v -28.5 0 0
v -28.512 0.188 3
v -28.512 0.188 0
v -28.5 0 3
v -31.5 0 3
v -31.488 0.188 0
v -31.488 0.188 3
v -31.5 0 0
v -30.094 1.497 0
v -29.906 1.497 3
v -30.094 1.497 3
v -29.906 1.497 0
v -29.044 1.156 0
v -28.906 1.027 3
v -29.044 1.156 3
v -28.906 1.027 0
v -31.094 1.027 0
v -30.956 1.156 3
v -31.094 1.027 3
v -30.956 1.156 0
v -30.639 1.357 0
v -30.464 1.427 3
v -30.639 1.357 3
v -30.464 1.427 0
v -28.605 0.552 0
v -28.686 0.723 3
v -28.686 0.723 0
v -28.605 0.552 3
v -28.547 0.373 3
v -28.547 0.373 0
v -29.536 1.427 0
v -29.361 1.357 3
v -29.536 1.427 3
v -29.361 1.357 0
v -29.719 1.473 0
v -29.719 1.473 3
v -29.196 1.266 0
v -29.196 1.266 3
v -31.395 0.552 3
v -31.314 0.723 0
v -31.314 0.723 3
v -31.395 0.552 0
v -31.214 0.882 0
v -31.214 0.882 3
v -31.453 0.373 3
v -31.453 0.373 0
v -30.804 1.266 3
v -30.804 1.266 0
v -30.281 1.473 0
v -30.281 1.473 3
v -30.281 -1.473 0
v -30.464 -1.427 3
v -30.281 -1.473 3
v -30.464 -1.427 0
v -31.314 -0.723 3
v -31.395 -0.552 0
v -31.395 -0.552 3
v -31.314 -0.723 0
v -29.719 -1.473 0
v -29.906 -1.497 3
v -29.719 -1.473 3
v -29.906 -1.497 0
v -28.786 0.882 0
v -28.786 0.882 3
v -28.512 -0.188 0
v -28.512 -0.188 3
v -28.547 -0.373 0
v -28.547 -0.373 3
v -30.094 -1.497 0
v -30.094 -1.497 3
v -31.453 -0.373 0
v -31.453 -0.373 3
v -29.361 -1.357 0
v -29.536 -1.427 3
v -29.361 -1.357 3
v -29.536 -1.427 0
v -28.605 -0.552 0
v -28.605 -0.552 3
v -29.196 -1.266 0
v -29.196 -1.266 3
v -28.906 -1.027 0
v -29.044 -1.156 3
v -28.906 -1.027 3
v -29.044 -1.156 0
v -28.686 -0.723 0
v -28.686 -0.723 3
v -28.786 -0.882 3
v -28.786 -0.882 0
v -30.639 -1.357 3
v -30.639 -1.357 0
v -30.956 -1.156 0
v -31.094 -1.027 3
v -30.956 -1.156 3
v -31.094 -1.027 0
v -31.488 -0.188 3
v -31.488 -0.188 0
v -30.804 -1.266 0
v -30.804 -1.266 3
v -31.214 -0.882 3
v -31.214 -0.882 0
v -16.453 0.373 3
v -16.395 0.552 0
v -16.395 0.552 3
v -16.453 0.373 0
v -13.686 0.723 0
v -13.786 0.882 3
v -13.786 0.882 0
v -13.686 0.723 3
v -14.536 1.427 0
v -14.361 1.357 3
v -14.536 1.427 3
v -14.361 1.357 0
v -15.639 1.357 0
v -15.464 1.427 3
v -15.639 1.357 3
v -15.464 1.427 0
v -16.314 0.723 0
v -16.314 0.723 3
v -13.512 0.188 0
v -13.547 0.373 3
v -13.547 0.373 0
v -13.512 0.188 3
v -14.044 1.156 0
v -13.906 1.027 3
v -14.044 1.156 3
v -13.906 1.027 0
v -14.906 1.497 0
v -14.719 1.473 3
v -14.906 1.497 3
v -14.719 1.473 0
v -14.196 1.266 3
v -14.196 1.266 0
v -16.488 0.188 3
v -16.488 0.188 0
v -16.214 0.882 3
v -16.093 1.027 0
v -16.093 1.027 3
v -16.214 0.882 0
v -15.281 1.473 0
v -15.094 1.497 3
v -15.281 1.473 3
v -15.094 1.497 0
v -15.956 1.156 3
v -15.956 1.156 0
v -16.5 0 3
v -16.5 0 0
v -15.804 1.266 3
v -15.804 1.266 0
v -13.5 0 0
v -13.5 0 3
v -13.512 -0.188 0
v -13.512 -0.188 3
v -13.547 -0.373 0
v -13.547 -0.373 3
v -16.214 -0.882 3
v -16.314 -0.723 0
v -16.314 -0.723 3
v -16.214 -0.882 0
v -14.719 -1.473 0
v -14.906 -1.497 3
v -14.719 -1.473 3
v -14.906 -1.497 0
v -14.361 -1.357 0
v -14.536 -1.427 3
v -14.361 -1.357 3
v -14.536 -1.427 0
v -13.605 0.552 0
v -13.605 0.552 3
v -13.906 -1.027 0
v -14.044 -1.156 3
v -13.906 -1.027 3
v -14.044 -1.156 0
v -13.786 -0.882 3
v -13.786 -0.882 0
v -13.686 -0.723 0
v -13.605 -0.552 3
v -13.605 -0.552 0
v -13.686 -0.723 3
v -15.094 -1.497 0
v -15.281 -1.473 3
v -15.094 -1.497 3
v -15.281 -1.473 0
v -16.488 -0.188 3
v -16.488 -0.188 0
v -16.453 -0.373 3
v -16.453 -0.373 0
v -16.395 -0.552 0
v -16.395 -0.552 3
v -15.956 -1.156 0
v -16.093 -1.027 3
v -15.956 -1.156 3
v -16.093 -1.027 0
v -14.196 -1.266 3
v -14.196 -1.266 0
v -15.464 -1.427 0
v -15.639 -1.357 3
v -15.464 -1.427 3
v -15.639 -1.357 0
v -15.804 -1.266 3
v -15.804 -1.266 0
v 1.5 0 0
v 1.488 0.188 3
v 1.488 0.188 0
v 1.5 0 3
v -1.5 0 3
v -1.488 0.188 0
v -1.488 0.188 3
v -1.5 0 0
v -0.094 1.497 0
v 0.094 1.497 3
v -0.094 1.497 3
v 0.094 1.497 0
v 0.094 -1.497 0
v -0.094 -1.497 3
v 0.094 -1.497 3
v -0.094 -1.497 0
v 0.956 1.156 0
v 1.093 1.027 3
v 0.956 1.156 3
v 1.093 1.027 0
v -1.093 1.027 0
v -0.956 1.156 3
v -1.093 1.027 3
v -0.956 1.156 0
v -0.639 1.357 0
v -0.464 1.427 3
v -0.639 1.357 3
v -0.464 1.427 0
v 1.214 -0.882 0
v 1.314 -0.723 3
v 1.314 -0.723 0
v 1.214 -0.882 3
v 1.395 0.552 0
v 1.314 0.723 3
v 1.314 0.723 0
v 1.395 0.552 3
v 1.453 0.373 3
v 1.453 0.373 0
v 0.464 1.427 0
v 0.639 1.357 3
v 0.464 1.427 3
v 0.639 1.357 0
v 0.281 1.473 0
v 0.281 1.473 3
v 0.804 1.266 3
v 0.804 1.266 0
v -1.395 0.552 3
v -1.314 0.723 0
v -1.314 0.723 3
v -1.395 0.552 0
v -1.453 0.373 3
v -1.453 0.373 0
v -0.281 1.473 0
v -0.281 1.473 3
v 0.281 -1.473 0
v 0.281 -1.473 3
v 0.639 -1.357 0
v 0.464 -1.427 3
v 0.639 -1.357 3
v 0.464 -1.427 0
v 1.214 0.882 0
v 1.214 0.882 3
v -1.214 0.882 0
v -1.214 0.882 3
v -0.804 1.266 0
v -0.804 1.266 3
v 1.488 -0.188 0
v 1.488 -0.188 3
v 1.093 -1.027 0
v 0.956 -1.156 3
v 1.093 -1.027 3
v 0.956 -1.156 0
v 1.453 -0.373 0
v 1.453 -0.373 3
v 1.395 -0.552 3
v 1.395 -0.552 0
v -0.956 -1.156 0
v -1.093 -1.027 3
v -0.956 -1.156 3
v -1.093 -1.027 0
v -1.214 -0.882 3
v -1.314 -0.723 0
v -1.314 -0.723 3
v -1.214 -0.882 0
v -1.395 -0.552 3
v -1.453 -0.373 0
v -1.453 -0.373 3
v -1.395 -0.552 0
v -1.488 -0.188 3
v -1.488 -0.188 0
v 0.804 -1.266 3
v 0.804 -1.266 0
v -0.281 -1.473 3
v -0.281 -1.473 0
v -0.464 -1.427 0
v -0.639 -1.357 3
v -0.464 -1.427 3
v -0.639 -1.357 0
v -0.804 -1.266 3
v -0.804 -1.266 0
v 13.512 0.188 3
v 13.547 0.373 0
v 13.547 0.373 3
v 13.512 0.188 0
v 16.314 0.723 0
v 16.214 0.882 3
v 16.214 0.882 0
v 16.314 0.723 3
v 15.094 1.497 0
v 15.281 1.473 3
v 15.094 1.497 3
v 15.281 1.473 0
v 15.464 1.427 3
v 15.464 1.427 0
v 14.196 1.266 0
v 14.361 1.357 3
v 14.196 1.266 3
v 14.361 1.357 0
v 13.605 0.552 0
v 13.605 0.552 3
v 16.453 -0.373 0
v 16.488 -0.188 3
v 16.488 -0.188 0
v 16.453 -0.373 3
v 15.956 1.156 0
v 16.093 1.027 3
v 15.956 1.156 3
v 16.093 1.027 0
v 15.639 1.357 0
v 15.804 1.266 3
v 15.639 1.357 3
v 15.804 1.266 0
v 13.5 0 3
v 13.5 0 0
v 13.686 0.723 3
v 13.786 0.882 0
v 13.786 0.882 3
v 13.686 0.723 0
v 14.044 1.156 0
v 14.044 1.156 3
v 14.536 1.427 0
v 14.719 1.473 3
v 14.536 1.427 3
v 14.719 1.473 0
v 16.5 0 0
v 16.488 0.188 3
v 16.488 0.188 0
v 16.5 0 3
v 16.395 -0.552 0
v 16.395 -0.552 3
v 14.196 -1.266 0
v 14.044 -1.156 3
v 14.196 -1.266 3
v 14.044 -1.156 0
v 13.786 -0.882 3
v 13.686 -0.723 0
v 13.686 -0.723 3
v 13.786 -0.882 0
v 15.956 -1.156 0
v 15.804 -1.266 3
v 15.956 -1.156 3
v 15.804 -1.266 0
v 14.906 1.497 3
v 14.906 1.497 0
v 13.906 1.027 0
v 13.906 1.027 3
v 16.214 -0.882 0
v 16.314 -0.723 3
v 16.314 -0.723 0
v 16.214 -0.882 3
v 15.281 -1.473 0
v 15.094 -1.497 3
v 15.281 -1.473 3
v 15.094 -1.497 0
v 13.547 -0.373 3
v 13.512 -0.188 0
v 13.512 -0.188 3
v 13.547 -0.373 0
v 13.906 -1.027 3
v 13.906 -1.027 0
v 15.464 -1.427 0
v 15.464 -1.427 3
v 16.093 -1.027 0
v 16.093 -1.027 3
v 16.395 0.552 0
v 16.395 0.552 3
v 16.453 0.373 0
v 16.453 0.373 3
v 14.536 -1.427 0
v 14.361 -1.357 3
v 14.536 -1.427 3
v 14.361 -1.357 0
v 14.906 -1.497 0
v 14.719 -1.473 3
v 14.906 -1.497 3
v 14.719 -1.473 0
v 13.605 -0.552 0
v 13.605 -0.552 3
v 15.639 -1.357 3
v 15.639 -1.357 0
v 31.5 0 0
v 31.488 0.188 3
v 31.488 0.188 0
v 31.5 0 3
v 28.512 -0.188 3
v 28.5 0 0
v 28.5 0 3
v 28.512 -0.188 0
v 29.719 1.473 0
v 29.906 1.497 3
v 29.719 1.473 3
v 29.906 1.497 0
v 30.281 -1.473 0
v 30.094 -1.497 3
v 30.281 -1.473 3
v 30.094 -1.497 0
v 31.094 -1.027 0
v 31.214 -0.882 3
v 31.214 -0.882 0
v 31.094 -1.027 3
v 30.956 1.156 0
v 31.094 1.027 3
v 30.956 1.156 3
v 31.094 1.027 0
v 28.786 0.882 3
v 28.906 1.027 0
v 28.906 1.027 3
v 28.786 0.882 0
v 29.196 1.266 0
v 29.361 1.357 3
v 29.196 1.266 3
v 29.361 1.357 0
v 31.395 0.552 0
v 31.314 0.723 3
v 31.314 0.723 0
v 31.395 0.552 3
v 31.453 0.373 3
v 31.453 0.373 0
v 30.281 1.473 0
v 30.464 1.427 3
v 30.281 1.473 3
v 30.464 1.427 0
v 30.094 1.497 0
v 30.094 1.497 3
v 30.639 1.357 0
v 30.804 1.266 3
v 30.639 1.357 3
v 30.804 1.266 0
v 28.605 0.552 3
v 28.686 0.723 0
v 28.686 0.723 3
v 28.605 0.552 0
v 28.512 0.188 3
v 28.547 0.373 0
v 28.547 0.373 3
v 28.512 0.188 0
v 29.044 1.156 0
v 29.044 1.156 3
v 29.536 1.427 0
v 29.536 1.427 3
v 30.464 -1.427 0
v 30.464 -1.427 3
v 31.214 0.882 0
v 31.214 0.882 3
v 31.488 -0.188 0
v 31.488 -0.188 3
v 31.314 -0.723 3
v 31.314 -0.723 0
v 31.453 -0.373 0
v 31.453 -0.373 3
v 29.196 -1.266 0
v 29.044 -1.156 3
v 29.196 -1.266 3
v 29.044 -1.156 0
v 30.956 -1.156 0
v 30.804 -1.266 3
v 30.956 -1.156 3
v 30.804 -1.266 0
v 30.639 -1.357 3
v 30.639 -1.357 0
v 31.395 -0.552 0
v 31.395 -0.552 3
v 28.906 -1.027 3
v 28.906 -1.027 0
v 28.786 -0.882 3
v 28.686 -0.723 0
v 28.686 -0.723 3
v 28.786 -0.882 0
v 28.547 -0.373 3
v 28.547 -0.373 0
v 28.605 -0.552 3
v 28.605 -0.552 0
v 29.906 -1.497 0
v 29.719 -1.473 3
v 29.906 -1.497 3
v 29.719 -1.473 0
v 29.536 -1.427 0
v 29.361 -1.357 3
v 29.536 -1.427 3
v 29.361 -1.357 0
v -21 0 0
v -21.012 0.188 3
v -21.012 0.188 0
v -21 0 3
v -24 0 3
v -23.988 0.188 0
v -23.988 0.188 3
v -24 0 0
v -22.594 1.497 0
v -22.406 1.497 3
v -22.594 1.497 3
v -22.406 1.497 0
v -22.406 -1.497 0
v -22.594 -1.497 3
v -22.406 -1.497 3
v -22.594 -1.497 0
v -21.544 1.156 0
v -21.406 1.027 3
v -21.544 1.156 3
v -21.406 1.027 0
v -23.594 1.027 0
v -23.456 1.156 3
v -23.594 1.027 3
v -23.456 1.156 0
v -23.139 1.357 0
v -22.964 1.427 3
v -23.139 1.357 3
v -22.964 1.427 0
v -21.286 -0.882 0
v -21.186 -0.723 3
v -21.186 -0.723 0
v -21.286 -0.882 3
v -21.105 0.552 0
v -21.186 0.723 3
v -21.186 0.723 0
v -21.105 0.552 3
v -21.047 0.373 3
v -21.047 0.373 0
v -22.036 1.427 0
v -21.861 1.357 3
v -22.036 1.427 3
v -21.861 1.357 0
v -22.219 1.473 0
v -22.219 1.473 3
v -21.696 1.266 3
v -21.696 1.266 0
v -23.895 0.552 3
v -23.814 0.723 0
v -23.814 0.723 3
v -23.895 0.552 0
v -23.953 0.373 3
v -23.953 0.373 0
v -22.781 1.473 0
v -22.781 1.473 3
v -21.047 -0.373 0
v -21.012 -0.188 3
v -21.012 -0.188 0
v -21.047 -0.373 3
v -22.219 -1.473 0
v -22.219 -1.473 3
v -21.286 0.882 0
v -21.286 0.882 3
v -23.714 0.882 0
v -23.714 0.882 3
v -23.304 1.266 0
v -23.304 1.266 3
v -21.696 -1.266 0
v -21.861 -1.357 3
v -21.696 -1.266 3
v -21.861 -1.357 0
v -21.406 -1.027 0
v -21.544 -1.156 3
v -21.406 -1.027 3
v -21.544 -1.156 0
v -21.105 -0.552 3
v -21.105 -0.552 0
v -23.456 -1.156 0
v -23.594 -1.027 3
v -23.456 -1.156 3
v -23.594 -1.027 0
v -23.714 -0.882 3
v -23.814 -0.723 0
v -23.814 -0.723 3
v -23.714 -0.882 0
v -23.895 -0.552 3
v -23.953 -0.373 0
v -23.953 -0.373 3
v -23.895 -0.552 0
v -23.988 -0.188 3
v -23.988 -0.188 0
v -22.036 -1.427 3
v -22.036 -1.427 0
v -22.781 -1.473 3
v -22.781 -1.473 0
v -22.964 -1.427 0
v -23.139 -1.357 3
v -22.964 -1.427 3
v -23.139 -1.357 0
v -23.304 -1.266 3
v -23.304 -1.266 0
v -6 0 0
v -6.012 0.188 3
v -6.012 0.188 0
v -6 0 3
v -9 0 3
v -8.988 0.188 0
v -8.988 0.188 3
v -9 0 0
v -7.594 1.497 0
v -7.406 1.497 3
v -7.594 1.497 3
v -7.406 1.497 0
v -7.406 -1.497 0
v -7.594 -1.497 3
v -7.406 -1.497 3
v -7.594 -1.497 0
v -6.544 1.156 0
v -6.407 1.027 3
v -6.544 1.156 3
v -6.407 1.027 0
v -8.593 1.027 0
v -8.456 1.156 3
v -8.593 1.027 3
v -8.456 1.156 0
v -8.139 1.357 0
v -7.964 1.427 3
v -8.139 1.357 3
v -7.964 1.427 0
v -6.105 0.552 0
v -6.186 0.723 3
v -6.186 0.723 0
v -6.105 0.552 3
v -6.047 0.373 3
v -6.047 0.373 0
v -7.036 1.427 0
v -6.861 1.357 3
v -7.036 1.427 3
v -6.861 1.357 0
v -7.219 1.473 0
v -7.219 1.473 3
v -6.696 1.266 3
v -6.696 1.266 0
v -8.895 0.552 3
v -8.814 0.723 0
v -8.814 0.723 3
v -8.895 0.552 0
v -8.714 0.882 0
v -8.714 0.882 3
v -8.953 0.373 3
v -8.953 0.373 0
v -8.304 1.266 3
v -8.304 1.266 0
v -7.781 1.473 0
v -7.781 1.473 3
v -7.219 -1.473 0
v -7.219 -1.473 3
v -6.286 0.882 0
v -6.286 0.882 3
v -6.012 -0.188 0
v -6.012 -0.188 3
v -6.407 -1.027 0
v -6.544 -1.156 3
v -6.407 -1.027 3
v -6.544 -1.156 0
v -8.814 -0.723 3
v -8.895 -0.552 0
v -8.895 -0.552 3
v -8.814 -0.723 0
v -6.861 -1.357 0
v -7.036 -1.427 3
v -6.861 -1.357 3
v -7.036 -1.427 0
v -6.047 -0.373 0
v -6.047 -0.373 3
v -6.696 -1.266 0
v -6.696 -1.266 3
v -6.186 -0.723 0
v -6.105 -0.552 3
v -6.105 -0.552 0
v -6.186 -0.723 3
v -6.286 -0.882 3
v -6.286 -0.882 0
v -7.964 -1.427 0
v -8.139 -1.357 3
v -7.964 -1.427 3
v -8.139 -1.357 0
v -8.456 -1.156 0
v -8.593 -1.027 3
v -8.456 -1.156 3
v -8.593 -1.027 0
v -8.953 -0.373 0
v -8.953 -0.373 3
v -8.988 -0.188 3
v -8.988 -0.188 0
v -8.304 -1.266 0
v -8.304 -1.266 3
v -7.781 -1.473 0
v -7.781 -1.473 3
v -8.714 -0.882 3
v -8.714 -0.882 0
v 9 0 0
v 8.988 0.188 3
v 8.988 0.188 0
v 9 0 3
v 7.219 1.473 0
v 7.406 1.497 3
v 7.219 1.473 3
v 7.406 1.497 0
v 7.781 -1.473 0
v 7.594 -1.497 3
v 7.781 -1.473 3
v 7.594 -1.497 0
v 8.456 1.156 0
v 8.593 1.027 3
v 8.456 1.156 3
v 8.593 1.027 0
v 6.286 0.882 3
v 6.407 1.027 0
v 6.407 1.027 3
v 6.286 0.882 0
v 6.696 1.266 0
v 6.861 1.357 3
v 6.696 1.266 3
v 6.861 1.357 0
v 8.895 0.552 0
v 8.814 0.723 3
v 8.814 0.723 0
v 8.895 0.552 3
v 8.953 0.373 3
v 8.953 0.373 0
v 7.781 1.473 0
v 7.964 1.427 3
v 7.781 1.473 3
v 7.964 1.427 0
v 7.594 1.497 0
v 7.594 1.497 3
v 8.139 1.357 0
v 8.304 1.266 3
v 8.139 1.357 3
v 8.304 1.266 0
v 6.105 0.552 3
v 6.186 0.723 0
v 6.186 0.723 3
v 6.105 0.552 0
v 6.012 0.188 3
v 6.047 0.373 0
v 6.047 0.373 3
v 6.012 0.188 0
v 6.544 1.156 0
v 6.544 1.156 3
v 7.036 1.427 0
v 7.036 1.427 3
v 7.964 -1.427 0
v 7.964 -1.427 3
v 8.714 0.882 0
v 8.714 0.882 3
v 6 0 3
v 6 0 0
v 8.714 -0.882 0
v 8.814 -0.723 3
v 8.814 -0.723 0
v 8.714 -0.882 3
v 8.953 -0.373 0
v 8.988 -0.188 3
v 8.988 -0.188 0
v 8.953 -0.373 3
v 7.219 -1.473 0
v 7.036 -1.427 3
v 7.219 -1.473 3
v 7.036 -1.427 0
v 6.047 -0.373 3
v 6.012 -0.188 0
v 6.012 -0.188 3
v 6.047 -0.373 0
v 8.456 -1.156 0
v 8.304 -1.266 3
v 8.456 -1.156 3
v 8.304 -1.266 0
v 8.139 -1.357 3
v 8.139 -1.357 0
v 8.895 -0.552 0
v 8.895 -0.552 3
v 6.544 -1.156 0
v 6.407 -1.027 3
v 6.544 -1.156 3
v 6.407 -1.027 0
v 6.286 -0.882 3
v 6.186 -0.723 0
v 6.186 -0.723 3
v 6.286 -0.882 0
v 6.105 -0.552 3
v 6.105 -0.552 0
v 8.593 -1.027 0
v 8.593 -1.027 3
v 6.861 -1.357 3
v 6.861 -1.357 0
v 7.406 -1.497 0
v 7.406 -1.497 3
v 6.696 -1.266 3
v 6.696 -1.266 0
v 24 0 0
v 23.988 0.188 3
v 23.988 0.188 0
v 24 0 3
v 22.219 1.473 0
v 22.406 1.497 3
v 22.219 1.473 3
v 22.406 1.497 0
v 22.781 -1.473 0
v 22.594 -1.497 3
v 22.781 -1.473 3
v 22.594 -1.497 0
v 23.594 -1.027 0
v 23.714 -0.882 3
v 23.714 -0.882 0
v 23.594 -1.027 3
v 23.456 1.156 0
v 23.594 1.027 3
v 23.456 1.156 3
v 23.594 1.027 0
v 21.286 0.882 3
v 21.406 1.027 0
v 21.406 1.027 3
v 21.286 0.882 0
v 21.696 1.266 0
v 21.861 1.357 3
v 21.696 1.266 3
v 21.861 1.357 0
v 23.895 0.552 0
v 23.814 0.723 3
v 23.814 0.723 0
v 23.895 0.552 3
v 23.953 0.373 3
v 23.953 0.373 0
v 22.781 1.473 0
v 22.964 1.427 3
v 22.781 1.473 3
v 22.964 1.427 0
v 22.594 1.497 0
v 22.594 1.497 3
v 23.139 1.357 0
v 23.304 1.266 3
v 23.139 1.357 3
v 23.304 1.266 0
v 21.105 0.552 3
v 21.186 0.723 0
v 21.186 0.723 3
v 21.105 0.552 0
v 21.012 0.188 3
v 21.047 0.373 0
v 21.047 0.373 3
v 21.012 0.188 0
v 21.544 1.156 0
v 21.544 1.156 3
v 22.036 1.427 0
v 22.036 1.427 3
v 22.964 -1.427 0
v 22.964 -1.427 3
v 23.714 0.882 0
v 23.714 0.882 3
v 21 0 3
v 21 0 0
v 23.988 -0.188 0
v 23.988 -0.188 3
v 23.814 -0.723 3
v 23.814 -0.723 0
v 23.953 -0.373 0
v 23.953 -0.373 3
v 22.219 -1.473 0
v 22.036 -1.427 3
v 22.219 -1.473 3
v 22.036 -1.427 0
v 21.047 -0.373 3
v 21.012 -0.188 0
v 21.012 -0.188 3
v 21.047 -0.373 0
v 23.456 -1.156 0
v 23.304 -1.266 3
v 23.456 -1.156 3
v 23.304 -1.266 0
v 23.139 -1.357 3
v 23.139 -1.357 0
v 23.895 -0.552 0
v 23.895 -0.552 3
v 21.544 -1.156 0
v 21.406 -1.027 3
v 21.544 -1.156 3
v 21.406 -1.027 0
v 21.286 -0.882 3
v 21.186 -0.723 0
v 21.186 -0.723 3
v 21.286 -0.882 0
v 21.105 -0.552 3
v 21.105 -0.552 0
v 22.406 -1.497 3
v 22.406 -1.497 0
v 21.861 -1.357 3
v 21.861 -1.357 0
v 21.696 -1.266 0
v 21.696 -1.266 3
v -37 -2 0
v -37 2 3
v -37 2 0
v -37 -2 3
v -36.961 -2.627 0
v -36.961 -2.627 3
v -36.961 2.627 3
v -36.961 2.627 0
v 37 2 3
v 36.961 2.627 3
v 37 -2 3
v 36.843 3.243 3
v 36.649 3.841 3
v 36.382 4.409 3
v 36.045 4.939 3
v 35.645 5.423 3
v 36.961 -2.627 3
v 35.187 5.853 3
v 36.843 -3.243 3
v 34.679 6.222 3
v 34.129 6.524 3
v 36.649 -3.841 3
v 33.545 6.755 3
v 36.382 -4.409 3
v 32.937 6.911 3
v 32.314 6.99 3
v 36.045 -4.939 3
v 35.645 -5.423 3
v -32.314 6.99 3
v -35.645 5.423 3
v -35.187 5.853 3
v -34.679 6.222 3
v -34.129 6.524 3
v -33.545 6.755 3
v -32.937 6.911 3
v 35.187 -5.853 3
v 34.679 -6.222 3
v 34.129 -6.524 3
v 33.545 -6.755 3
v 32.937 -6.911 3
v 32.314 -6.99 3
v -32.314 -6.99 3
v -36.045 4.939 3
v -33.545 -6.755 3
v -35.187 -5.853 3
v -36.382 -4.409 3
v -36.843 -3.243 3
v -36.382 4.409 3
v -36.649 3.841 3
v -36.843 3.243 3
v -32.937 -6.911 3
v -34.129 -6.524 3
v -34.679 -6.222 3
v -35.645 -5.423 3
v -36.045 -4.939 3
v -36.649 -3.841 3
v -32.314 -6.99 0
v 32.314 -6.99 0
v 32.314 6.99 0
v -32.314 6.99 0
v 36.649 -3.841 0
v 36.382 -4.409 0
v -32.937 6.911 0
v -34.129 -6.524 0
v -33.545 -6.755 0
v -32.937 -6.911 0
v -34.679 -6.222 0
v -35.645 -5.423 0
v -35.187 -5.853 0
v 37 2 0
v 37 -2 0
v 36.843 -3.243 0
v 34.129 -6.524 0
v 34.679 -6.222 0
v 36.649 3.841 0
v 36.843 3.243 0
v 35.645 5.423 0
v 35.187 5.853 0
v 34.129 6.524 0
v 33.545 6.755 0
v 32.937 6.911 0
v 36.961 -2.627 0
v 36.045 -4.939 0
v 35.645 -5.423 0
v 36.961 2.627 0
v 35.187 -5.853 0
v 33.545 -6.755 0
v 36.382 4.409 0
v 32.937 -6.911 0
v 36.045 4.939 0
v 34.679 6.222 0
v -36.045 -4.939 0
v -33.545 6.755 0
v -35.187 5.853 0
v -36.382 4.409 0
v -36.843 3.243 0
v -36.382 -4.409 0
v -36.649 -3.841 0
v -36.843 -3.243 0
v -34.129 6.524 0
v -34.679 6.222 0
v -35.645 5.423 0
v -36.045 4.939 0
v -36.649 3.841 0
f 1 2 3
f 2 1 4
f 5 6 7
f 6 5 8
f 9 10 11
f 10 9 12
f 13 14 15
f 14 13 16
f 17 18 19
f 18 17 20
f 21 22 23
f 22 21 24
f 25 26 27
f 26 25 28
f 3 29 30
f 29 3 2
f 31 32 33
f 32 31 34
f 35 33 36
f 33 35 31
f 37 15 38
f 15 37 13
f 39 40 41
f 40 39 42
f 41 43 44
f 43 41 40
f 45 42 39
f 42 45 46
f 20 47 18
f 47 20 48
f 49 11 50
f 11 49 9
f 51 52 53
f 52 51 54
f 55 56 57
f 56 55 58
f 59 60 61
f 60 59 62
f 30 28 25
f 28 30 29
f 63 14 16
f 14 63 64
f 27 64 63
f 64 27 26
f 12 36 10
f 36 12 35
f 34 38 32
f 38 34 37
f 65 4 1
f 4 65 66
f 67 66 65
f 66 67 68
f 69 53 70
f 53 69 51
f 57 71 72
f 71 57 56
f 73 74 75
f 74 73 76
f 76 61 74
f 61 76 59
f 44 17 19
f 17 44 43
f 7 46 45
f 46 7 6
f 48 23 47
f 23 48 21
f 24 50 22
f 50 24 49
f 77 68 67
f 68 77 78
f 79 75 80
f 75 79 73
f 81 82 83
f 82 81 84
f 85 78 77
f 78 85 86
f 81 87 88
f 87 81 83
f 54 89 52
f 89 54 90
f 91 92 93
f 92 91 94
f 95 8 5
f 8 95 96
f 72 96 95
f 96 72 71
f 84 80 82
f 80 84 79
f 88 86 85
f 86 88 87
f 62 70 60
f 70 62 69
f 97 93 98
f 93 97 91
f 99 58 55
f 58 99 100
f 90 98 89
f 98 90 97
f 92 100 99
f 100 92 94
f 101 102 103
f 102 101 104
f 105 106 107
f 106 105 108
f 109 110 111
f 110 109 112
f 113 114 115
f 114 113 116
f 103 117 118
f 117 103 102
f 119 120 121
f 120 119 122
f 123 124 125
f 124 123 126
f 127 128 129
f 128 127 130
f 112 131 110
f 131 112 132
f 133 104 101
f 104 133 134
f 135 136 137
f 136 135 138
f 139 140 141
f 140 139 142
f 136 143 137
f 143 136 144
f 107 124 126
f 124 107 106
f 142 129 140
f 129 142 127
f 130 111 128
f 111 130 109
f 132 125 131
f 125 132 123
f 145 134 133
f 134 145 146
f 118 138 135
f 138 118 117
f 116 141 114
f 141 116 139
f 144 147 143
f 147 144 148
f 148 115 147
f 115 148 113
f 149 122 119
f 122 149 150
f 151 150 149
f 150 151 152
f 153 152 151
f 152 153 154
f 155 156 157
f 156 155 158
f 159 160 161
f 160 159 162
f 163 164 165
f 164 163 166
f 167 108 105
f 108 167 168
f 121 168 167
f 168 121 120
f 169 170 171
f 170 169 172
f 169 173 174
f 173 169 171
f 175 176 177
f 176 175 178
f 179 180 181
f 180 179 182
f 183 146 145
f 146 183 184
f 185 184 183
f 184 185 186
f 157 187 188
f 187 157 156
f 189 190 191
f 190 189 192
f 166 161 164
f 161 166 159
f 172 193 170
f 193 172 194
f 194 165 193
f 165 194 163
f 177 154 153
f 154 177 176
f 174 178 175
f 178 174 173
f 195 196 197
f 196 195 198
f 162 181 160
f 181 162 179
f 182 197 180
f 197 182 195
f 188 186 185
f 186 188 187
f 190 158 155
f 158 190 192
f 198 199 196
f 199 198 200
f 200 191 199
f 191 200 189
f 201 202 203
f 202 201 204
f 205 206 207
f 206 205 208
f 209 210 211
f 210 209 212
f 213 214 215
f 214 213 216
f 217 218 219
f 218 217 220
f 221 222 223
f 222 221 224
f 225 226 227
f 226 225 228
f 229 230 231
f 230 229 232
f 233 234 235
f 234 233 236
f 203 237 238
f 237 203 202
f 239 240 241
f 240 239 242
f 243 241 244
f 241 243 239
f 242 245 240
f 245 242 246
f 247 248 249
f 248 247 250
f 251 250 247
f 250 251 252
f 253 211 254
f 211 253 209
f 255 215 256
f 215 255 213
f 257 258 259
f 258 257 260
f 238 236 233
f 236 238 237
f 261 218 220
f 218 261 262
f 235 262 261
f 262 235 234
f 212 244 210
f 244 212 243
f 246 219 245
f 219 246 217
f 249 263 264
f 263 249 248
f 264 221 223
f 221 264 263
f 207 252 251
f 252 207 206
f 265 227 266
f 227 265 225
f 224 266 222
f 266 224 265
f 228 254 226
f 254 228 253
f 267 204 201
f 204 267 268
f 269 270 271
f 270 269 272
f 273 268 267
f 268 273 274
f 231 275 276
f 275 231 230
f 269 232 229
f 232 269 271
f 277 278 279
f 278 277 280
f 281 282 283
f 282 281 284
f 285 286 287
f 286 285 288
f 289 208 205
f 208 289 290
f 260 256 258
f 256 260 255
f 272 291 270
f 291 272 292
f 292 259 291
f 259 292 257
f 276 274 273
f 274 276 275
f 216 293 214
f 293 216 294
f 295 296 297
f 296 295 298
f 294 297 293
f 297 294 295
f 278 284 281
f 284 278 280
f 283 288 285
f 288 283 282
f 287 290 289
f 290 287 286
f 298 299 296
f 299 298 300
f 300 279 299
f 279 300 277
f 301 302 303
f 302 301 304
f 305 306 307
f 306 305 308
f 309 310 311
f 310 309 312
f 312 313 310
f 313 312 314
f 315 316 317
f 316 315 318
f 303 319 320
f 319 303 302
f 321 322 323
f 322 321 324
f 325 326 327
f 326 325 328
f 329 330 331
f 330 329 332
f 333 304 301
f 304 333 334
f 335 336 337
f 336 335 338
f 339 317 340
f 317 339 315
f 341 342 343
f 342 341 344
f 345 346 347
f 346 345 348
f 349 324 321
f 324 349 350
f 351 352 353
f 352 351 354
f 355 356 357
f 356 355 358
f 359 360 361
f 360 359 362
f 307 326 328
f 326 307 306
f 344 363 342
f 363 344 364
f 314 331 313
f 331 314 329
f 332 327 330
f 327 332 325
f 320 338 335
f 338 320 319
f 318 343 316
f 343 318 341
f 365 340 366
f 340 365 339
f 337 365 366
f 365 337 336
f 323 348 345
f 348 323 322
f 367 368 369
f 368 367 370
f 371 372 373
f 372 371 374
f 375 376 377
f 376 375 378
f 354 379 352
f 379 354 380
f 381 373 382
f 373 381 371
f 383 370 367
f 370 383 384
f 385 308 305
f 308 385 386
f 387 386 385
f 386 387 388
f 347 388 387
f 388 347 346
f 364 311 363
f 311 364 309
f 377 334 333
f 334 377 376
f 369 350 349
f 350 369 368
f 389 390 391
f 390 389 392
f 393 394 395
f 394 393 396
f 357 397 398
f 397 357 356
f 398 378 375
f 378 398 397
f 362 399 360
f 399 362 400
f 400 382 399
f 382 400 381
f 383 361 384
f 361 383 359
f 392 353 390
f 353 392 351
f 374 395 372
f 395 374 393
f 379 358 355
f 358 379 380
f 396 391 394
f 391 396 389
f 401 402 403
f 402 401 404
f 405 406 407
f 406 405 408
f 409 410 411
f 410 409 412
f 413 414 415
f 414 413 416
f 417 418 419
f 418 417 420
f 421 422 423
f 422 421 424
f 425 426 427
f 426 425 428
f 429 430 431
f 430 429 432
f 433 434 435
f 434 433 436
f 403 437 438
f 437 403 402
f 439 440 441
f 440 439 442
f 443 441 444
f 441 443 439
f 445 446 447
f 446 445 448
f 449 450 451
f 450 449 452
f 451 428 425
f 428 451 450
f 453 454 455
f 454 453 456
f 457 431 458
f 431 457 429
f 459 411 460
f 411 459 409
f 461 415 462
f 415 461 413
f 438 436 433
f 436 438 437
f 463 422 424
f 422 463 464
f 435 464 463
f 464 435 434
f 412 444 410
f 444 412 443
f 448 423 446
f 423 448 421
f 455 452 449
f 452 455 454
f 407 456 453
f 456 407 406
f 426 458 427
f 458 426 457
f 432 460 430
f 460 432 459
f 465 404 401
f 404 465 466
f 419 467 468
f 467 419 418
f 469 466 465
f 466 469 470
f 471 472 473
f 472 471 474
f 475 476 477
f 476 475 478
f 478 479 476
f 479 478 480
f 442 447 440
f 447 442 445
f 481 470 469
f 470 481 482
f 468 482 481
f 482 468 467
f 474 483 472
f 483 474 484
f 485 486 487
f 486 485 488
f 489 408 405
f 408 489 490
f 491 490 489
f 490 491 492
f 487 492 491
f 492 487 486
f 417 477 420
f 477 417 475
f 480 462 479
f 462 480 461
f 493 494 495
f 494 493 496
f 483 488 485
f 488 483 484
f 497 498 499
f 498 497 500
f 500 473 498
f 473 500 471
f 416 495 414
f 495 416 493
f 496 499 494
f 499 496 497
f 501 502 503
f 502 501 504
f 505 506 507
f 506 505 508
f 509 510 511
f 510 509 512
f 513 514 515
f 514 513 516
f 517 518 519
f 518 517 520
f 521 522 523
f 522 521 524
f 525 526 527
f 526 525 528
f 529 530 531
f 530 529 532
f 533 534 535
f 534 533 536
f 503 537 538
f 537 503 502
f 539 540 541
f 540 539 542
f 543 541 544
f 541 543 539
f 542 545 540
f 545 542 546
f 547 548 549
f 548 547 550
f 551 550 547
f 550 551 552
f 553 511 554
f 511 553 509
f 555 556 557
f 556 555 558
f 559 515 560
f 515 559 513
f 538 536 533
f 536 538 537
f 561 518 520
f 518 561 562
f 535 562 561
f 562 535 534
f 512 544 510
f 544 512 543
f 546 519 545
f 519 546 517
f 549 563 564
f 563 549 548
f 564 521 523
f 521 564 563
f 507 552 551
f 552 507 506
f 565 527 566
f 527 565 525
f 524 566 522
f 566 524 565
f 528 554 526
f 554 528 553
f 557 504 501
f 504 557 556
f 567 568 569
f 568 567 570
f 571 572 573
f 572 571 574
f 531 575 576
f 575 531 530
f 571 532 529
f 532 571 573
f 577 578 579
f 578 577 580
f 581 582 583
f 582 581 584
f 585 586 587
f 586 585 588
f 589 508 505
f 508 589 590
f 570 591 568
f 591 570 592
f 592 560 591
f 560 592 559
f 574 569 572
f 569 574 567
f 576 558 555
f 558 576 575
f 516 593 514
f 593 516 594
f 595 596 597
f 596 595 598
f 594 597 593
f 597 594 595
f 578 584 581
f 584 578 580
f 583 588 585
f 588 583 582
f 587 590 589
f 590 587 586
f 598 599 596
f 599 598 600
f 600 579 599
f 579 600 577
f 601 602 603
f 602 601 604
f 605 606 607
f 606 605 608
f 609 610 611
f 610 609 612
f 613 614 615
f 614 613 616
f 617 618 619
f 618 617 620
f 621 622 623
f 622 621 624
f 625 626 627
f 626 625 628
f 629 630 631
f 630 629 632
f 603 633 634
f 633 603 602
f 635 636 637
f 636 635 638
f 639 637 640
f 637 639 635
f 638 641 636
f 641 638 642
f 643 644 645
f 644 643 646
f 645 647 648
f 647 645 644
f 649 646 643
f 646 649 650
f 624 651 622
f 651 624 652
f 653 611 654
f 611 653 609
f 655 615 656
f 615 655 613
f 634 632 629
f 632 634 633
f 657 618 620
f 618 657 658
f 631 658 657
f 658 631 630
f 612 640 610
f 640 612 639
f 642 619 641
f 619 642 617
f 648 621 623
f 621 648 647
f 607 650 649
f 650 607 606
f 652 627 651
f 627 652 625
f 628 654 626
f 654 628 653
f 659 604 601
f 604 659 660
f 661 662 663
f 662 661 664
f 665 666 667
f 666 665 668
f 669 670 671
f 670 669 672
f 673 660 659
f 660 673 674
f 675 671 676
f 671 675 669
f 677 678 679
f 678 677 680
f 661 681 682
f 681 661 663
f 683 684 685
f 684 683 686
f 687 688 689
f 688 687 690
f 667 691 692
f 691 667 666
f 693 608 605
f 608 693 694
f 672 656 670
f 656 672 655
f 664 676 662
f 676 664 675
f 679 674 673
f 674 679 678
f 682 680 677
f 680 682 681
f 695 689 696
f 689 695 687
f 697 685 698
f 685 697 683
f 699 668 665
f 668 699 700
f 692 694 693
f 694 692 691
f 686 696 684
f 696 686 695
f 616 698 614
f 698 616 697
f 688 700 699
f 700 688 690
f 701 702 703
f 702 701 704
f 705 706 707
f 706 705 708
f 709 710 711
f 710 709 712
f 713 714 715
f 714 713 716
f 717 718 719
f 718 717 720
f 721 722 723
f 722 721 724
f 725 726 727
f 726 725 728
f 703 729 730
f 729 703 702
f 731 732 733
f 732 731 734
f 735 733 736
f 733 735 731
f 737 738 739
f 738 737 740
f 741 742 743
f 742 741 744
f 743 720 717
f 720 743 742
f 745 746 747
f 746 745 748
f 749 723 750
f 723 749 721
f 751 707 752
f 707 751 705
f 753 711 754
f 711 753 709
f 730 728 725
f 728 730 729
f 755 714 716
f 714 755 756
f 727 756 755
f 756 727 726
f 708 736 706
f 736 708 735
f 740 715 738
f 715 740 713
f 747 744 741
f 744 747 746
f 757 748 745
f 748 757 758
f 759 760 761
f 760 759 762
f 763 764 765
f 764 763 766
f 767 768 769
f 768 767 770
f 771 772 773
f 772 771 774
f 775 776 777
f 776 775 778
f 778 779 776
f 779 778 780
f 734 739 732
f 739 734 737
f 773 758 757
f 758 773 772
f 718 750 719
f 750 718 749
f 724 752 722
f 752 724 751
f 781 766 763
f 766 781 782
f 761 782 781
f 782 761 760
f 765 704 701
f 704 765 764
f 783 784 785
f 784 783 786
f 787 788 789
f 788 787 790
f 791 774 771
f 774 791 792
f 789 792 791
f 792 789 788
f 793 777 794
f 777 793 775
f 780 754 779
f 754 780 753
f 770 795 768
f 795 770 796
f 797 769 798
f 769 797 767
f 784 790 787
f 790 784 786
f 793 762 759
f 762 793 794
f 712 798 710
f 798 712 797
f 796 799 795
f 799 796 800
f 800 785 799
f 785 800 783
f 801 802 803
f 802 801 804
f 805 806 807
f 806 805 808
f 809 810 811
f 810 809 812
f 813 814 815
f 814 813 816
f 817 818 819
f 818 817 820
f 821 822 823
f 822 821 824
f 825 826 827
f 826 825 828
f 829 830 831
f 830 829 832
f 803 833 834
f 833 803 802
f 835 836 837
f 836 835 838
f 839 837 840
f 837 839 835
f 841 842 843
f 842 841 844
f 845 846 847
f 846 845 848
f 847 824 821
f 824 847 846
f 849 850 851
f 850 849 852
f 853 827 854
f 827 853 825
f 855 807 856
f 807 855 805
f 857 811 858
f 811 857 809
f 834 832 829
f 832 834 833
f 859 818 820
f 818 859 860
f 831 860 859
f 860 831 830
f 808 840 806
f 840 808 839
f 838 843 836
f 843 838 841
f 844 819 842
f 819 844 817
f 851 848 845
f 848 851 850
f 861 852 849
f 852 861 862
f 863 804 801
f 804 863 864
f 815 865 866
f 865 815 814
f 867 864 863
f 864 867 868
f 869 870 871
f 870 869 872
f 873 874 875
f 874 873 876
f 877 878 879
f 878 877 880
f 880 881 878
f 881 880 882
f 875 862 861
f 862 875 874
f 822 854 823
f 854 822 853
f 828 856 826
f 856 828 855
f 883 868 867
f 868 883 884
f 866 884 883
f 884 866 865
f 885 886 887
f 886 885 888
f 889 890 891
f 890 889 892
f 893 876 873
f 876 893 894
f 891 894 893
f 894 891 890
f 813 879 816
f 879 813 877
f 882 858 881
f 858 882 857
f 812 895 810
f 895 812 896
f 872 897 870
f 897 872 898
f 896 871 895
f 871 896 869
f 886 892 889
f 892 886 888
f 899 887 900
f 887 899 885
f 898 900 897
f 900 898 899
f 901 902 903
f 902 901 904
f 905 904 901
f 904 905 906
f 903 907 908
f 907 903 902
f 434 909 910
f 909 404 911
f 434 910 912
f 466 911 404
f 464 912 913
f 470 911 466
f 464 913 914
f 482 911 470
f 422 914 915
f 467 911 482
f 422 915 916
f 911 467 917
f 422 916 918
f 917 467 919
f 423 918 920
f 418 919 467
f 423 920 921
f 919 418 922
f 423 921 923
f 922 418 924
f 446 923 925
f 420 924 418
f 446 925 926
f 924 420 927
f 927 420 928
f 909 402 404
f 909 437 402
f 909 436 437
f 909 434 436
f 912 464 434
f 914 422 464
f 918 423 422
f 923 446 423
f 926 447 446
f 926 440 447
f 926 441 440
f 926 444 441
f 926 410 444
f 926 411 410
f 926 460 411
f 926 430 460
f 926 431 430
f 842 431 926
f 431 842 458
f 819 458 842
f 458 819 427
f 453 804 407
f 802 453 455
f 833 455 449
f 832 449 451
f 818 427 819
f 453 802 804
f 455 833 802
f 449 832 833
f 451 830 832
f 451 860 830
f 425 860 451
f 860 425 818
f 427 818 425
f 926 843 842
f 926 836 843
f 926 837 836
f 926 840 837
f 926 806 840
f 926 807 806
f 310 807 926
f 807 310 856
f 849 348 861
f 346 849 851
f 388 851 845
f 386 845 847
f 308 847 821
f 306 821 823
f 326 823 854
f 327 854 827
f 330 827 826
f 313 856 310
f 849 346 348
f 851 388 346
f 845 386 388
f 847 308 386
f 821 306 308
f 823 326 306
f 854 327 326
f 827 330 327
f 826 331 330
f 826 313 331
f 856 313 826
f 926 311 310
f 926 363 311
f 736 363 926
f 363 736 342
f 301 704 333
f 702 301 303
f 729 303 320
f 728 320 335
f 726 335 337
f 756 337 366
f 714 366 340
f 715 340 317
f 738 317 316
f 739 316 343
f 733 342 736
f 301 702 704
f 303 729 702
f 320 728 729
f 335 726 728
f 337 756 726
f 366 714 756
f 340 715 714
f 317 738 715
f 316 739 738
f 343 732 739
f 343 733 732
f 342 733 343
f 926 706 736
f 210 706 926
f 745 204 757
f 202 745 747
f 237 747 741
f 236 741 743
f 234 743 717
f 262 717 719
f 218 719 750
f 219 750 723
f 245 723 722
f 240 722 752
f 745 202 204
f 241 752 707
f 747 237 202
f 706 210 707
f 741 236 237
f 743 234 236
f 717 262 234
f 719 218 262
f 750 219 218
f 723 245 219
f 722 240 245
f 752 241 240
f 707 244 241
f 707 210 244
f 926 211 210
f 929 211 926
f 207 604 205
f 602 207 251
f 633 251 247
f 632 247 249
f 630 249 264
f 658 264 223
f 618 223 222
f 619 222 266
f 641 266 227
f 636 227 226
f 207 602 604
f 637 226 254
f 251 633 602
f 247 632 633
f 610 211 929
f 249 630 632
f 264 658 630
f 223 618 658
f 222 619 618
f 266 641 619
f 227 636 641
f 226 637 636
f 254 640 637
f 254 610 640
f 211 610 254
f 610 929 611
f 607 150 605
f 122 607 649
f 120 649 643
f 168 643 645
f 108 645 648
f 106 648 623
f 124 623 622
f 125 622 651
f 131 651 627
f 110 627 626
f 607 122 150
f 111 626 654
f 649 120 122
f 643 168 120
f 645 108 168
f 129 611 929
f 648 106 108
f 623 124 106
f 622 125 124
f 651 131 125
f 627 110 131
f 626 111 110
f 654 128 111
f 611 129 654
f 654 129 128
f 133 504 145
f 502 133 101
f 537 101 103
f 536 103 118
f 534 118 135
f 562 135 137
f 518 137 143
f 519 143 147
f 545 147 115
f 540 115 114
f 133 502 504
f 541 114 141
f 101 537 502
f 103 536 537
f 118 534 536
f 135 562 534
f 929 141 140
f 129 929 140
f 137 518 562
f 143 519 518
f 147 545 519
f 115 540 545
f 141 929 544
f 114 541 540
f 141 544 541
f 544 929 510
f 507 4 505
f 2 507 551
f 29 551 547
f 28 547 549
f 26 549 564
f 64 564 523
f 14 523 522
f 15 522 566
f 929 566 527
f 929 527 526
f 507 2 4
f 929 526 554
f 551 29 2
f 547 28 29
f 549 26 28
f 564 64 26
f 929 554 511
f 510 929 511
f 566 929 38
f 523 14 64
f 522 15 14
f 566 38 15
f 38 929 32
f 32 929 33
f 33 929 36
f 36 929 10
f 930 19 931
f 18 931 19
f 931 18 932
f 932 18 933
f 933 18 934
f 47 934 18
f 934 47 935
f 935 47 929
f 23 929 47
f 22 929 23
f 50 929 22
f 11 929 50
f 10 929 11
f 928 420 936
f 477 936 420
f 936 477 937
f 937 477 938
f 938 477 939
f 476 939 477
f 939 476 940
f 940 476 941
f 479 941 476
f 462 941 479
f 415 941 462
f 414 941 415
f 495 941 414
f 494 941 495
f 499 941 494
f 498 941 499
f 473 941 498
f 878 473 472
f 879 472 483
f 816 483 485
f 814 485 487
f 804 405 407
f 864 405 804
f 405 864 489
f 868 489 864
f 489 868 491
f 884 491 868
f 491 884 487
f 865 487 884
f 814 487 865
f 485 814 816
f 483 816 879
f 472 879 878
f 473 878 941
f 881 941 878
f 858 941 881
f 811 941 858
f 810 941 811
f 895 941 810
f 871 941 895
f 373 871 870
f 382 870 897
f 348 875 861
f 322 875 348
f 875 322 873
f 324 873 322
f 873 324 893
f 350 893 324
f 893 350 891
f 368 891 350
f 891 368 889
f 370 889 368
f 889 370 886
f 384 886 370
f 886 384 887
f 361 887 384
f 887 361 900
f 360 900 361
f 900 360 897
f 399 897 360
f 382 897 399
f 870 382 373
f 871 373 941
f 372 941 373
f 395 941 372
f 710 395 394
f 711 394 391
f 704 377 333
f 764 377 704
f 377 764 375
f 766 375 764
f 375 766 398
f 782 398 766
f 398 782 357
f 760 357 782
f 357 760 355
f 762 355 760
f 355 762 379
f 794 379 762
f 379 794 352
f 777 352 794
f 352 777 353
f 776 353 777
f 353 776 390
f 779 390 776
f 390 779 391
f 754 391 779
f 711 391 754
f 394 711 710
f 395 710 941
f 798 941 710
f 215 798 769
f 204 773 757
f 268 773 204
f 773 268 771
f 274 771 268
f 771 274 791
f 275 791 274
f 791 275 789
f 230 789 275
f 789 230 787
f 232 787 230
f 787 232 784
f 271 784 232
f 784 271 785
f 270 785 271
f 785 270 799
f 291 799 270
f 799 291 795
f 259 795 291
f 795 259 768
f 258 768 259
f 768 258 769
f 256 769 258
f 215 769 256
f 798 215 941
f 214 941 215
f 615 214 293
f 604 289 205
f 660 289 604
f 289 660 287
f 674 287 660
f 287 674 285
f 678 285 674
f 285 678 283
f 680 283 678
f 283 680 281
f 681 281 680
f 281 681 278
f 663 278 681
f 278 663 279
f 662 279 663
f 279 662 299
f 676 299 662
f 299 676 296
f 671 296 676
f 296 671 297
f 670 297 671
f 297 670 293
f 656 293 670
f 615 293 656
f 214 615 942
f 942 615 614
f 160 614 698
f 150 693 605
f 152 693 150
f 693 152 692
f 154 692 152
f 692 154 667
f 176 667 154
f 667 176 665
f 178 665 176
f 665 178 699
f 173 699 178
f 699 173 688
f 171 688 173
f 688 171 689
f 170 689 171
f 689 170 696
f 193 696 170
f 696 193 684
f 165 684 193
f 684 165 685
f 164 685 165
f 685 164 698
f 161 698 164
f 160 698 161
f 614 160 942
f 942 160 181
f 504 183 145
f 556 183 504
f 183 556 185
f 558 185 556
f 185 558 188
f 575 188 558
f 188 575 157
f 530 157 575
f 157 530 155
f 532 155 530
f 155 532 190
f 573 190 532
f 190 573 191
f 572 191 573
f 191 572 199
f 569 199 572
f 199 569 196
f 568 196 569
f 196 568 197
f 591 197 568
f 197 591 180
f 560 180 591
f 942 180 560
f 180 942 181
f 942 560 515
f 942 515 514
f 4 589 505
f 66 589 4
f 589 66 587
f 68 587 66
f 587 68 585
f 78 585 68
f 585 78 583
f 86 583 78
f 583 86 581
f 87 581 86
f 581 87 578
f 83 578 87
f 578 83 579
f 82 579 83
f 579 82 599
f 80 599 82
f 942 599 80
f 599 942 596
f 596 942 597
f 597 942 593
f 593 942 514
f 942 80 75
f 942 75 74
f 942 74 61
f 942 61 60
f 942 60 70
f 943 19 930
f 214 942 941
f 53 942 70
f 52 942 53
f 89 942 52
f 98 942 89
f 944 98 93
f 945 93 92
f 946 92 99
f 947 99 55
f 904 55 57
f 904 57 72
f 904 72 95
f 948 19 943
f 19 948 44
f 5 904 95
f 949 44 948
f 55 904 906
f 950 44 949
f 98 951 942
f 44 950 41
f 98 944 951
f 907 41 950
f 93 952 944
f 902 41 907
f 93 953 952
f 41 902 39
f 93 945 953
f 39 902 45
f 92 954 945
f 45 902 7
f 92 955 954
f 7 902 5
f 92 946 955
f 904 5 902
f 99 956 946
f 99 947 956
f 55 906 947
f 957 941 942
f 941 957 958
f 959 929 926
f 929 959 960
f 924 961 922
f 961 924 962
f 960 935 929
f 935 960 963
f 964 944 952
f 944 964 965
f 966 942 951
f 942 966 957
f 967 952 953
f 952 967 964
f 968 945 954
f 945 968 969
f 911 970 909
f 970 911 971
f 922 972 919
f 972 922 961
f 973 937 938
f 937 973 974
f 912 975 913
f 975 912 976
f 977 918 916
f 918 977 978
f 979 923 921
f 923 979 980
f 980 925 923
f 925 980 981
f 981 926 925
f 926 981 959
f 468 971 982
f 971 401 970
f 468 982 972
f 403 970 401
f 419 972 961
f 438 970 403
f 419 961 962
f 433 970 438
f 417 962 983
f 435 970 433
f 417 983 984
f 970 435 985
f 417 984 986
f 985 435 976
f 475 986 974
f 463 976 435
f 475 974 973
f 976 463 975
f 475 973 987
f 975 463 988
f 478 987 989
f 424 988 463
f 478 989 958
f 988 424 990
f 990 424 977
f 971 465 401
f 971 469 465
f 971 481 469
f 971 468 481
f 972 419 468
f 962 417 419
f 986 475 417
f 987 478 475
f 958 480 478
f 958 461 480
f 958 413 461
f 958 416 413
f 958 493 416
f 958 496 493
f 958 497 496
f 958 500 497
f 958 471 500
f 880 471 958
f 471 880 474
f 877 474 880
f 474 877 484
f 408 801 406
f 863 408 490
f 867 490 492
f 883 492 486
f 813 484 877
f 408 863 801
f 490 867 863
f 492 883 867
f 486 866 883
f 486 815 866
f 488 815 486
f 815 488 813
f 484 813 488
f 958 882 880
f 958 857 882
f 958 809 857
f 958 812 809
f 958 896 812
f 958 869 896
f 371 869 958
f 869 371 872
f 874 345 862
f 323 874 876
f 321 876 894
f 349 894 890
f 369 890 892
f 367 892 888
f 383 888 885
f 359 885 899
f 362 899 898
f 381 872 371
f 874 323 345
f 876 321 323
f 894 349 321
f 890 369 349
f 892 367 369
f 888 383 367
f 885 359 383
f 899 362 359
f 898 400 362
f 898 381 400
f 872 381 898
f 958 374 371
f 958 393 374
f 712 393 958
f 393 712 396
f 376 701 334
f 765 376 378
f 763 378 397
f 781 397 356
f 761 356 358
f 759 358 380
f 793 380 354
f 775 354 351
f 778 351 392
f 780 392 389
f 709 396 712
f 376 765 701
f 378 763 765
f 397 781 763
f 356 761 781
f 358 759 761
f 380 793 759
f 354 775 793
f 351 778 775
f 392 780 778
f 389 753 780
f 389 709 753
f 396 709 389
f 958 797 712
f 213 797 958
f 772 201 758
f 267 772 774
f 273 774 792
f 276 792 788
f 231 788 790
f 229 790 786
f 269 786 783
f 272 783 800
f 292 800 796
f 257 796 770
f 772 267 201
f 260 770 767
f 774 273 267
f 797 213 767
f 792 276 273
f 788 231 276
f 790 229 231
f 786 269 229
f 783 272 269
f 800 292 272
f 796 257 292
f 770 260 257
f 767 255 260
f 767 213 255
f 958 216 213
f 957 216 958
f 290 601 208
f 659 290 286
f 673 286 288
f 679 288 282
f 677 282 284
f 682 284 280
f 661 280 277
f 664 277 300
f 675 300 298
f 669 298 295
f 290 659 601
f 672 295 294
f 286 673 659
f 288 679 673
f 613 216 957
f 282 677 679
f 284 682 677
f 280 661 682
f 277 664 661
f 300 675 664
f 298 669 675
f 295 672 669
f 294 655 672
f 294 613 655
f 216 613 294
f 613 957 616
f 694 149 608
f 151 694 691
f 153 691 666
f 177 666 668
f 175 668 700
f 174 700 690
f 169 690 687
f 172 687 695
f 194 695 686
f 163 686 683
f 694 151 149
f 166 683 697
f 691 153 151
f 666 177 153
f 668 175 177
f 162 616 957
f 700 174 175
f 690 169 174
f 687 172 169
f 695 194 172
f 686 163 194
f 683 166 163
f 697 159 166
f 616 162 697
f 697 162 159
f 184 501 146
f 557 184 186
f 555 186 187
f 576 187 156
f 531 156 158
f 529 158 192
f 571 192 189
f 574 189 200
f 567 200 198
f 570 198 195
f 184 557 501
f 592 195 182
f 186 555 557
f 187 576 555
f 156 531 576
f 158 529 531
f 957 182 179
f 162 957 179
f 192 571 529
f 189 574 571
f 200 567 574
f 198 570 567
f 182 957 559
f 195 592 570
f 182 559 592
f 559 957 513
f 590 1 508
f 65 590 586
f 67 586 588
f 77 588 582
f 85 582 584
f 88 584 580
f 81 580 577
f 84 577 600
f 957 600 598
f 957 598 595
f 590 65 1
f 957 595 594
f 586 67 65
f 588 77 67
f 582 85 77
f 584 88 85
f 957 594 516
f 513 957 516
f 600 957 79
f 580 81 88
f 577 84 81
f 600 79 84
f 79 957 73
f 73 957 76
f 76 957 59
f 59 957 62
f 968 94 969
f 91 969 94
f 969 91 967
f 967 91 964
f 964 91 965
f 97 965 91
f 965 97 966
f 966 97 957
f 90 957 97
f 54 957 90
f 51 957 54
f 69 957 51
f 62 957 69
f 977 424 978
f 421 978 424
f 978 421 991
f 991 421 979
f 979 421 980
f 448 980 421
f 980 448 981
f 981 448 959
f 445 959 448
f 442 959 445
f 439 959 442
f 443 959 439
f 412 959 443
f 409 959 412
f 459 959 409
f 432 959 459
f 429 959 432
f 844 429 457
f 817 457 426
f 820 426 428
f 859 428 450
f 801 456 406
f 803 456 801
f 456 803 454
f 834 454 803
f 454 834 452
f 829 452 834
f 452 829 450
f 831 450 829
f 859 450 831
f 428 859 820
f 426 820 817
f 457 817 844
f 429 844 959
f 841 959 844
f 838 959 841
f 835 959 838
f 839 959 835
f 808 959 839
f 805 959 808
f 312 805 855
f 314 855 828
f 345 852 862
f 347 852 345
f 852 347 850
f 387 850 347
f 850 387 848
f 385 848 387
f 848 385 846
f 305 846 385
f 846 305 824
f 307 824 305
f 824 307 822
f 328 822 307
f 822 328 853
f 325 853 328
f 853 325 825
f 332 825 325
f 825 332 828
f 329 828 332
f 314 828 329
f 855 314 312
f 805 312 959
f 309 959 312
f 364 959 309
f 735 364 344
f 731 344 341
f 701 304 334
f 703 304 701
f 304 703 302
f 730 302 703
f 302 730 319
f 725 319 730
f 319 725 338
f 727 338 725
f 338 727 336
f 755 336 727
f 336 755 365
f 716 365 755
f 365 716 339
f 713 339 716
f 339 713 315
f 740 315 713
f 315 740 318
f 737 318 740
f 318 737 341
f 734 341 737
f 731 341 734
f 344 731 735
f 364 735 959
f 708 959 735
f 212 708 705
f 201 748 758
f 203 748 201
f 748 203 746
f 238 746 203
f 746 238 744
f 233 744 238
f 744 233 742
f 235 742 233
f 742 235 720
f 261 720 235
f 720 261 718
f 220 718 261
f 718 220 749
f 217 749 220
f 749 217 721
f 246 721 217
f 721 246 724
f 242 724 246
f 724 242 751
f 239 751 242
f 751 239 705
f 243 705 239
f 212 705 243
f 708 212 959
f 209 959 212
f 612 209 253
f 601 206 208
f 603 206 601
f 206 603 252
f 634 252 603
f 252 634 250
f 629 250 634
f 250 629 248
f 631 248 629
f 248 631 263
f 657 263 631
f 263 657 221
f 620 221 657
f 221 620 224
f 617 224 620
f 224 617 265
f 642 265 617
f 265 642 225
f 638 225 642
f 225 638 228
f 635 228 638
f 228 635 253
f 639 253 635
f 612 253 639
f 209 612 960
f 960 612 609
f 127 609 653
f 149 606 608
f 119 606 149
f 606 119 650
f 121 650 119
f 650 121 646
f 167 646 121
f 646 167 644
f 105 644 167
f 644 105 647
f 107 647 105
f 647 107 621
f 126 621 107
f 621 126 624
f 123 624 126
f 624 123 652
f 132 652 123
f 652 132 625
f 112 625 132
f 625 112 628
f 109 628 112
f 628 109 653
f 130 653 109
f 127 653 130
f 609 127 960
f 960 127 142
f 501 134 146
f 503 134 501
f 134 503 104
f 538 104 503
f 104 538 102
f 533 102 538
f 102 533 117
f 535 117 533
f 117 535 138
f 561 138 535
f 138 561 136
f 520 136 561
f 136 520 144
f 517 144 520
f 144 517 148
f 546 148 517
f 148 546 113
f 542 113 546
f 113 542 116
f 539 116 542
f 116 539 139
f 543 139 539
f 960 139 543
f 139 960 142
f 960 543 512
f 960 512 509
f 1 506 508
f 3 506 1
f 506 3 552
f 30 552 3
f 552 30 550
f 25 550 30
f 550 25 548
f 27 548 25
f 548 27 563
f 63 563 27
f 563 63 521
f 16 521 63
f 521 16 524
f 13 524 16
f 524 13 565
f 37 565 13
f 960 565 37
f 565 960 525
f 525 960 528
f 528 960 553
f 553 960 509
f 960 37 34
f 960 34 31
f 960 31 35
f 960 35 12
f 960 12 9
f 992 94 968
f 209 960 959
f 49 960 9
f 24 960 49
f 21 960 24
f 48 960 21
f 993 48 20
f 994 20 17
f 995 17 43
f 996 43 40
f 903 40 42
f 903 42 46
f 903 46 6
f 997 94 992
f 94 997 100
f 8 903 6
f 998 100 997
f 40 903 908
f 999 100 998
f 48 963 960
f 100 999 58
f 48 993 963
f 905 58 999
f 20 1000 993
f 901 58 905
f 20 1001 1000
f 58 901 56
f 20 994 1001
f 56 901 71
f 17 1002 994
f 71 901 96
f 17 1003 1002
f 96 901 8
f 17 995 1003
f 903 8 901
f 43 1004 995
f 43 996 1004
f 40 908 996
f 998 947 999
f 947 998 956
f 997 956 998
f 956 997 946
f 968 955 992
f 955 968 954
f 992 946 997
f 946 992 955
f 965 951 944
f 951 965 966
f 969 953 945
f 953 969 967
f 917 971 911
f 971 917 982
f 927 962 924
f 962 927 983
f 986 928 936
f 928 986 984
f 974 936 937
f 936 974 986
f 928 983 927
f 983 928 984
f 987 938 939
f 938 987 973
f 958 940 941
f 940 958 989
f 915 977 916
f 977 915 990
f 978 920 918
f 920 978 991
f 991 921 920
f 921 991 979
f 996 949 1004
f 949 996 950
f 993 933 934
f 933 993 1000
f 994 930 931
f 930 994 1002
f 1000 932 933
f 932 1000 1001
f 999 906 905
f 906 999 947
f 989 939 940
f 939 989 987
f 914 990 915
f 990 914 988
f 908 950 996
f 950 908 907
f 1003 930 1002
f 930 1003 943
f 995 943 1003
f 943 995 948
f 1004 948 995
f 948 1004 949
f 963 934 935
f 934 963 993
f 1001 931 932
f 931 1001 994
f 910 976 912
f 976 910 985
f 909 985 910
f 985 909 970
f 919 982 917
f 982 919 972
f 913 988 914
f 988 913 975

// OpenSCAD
$fn = 50;


difference() {
	union() {
		hull() {
			translate(v = [-32.0000000000, 2.0000000000, 0]) {
				cylinder(h = 3, r = 5);
			}
			translate(v = [32.0000000000, 2.0000000000, 0]) {
				cylinder(h = 3, r = 5);
			}
			translate(v = [-32.0000000000, -2.0000000000, 0]) {
				cylinder(h = 3, r = 5);
			}
			translate(v = [32.0000000000, -2.0000000000, 0]) {
				cylinder(h = 3, r = 5);
			}
		}
	}
	union() {
		translate(v = [-30.0000000000, 0.0000000000, 0]) {
			translate(v = [0, 0, -100]) {
				cylinder(h = 200, r = 1.5000000000);
			}
		}
		translate(v = [-15.0000000000, 0.0000000000, 0]) {
			translate(v = [0, 0, -100]) {
				cylinder(h = 200, r = 1.5000000000);
			}
		}
		translate(v = [0, 0, -100]) {
			cylinder(h = 200, r = 1.5000000000);
		}
		translate(v = [15.0000000000, 0.0000000000, 0]) {
			translate(v = [0, 0, -100]) {
				cylinder(h = 200, r = 1.5000000000);
			}
		}
		translate(v = [30.0000000000, 0.0000000000, 0]) {
			translate(v = [0, 0, -100]) {
				cylinder(h = 200, r = 1.5000000000);
			}
		}
		translate(v = [-30.0000000000, 0.0000000000, 0]) {
			translate(v = [0, 0, -100]) {
				cylinder(h = 200, r = 1.5000000000);
			}
		}
		translate(v = [-22.5000000000, 0.0000000000, 0]) {
			translate(v = [0, 0, -100]) {
				cylinder(h = 200, r = 1.5000000000);
			}
		}
		translate(v = [-15.0000000000, 0.0000000000, 0]) {
			translate(v = [0, 0, -100]) {
				cylinder(h = 200, r = 1.5000000000);
			}
		}
		translate(v = [-7.5000000000, 0.0000000000, 0]) {
			translate(v = [0, 0, -100]) {
				cylinder(h = 200, r = 1.5000000000);
			}
		}
		translate(v = [0, 0, -100]) {
			cylinder(h = 200, r = 1.5000000000);
		}
		translate(v = [7.5000000000, 0.0000000000, 0]) {
			translate(v = [0, 0, -100]) {
				cylinder(h = 200, r = 1.5000000000);
			}
		}
		translate(v = [15.0000000000, 0.0000000000, 0]) {
			translate(v = [0, 0, -100]) {
				cylinder(h = 200, r = 1.5000000000);
			}
		}
		translate(v = [22.5000000000, 0.0000000000, 0]) {
			translate(v = [0, 0, -100]) {
				cylinder(h = 200, r = 1.5000000000);
			}
		}
		translate(v = [30.0000000000, 0.0000000000, 0]) {
			translate(v = [0, 0, -100]) {
				cylinder(h = 200, r = 1.5000000000);
			}
		}
	}
}
